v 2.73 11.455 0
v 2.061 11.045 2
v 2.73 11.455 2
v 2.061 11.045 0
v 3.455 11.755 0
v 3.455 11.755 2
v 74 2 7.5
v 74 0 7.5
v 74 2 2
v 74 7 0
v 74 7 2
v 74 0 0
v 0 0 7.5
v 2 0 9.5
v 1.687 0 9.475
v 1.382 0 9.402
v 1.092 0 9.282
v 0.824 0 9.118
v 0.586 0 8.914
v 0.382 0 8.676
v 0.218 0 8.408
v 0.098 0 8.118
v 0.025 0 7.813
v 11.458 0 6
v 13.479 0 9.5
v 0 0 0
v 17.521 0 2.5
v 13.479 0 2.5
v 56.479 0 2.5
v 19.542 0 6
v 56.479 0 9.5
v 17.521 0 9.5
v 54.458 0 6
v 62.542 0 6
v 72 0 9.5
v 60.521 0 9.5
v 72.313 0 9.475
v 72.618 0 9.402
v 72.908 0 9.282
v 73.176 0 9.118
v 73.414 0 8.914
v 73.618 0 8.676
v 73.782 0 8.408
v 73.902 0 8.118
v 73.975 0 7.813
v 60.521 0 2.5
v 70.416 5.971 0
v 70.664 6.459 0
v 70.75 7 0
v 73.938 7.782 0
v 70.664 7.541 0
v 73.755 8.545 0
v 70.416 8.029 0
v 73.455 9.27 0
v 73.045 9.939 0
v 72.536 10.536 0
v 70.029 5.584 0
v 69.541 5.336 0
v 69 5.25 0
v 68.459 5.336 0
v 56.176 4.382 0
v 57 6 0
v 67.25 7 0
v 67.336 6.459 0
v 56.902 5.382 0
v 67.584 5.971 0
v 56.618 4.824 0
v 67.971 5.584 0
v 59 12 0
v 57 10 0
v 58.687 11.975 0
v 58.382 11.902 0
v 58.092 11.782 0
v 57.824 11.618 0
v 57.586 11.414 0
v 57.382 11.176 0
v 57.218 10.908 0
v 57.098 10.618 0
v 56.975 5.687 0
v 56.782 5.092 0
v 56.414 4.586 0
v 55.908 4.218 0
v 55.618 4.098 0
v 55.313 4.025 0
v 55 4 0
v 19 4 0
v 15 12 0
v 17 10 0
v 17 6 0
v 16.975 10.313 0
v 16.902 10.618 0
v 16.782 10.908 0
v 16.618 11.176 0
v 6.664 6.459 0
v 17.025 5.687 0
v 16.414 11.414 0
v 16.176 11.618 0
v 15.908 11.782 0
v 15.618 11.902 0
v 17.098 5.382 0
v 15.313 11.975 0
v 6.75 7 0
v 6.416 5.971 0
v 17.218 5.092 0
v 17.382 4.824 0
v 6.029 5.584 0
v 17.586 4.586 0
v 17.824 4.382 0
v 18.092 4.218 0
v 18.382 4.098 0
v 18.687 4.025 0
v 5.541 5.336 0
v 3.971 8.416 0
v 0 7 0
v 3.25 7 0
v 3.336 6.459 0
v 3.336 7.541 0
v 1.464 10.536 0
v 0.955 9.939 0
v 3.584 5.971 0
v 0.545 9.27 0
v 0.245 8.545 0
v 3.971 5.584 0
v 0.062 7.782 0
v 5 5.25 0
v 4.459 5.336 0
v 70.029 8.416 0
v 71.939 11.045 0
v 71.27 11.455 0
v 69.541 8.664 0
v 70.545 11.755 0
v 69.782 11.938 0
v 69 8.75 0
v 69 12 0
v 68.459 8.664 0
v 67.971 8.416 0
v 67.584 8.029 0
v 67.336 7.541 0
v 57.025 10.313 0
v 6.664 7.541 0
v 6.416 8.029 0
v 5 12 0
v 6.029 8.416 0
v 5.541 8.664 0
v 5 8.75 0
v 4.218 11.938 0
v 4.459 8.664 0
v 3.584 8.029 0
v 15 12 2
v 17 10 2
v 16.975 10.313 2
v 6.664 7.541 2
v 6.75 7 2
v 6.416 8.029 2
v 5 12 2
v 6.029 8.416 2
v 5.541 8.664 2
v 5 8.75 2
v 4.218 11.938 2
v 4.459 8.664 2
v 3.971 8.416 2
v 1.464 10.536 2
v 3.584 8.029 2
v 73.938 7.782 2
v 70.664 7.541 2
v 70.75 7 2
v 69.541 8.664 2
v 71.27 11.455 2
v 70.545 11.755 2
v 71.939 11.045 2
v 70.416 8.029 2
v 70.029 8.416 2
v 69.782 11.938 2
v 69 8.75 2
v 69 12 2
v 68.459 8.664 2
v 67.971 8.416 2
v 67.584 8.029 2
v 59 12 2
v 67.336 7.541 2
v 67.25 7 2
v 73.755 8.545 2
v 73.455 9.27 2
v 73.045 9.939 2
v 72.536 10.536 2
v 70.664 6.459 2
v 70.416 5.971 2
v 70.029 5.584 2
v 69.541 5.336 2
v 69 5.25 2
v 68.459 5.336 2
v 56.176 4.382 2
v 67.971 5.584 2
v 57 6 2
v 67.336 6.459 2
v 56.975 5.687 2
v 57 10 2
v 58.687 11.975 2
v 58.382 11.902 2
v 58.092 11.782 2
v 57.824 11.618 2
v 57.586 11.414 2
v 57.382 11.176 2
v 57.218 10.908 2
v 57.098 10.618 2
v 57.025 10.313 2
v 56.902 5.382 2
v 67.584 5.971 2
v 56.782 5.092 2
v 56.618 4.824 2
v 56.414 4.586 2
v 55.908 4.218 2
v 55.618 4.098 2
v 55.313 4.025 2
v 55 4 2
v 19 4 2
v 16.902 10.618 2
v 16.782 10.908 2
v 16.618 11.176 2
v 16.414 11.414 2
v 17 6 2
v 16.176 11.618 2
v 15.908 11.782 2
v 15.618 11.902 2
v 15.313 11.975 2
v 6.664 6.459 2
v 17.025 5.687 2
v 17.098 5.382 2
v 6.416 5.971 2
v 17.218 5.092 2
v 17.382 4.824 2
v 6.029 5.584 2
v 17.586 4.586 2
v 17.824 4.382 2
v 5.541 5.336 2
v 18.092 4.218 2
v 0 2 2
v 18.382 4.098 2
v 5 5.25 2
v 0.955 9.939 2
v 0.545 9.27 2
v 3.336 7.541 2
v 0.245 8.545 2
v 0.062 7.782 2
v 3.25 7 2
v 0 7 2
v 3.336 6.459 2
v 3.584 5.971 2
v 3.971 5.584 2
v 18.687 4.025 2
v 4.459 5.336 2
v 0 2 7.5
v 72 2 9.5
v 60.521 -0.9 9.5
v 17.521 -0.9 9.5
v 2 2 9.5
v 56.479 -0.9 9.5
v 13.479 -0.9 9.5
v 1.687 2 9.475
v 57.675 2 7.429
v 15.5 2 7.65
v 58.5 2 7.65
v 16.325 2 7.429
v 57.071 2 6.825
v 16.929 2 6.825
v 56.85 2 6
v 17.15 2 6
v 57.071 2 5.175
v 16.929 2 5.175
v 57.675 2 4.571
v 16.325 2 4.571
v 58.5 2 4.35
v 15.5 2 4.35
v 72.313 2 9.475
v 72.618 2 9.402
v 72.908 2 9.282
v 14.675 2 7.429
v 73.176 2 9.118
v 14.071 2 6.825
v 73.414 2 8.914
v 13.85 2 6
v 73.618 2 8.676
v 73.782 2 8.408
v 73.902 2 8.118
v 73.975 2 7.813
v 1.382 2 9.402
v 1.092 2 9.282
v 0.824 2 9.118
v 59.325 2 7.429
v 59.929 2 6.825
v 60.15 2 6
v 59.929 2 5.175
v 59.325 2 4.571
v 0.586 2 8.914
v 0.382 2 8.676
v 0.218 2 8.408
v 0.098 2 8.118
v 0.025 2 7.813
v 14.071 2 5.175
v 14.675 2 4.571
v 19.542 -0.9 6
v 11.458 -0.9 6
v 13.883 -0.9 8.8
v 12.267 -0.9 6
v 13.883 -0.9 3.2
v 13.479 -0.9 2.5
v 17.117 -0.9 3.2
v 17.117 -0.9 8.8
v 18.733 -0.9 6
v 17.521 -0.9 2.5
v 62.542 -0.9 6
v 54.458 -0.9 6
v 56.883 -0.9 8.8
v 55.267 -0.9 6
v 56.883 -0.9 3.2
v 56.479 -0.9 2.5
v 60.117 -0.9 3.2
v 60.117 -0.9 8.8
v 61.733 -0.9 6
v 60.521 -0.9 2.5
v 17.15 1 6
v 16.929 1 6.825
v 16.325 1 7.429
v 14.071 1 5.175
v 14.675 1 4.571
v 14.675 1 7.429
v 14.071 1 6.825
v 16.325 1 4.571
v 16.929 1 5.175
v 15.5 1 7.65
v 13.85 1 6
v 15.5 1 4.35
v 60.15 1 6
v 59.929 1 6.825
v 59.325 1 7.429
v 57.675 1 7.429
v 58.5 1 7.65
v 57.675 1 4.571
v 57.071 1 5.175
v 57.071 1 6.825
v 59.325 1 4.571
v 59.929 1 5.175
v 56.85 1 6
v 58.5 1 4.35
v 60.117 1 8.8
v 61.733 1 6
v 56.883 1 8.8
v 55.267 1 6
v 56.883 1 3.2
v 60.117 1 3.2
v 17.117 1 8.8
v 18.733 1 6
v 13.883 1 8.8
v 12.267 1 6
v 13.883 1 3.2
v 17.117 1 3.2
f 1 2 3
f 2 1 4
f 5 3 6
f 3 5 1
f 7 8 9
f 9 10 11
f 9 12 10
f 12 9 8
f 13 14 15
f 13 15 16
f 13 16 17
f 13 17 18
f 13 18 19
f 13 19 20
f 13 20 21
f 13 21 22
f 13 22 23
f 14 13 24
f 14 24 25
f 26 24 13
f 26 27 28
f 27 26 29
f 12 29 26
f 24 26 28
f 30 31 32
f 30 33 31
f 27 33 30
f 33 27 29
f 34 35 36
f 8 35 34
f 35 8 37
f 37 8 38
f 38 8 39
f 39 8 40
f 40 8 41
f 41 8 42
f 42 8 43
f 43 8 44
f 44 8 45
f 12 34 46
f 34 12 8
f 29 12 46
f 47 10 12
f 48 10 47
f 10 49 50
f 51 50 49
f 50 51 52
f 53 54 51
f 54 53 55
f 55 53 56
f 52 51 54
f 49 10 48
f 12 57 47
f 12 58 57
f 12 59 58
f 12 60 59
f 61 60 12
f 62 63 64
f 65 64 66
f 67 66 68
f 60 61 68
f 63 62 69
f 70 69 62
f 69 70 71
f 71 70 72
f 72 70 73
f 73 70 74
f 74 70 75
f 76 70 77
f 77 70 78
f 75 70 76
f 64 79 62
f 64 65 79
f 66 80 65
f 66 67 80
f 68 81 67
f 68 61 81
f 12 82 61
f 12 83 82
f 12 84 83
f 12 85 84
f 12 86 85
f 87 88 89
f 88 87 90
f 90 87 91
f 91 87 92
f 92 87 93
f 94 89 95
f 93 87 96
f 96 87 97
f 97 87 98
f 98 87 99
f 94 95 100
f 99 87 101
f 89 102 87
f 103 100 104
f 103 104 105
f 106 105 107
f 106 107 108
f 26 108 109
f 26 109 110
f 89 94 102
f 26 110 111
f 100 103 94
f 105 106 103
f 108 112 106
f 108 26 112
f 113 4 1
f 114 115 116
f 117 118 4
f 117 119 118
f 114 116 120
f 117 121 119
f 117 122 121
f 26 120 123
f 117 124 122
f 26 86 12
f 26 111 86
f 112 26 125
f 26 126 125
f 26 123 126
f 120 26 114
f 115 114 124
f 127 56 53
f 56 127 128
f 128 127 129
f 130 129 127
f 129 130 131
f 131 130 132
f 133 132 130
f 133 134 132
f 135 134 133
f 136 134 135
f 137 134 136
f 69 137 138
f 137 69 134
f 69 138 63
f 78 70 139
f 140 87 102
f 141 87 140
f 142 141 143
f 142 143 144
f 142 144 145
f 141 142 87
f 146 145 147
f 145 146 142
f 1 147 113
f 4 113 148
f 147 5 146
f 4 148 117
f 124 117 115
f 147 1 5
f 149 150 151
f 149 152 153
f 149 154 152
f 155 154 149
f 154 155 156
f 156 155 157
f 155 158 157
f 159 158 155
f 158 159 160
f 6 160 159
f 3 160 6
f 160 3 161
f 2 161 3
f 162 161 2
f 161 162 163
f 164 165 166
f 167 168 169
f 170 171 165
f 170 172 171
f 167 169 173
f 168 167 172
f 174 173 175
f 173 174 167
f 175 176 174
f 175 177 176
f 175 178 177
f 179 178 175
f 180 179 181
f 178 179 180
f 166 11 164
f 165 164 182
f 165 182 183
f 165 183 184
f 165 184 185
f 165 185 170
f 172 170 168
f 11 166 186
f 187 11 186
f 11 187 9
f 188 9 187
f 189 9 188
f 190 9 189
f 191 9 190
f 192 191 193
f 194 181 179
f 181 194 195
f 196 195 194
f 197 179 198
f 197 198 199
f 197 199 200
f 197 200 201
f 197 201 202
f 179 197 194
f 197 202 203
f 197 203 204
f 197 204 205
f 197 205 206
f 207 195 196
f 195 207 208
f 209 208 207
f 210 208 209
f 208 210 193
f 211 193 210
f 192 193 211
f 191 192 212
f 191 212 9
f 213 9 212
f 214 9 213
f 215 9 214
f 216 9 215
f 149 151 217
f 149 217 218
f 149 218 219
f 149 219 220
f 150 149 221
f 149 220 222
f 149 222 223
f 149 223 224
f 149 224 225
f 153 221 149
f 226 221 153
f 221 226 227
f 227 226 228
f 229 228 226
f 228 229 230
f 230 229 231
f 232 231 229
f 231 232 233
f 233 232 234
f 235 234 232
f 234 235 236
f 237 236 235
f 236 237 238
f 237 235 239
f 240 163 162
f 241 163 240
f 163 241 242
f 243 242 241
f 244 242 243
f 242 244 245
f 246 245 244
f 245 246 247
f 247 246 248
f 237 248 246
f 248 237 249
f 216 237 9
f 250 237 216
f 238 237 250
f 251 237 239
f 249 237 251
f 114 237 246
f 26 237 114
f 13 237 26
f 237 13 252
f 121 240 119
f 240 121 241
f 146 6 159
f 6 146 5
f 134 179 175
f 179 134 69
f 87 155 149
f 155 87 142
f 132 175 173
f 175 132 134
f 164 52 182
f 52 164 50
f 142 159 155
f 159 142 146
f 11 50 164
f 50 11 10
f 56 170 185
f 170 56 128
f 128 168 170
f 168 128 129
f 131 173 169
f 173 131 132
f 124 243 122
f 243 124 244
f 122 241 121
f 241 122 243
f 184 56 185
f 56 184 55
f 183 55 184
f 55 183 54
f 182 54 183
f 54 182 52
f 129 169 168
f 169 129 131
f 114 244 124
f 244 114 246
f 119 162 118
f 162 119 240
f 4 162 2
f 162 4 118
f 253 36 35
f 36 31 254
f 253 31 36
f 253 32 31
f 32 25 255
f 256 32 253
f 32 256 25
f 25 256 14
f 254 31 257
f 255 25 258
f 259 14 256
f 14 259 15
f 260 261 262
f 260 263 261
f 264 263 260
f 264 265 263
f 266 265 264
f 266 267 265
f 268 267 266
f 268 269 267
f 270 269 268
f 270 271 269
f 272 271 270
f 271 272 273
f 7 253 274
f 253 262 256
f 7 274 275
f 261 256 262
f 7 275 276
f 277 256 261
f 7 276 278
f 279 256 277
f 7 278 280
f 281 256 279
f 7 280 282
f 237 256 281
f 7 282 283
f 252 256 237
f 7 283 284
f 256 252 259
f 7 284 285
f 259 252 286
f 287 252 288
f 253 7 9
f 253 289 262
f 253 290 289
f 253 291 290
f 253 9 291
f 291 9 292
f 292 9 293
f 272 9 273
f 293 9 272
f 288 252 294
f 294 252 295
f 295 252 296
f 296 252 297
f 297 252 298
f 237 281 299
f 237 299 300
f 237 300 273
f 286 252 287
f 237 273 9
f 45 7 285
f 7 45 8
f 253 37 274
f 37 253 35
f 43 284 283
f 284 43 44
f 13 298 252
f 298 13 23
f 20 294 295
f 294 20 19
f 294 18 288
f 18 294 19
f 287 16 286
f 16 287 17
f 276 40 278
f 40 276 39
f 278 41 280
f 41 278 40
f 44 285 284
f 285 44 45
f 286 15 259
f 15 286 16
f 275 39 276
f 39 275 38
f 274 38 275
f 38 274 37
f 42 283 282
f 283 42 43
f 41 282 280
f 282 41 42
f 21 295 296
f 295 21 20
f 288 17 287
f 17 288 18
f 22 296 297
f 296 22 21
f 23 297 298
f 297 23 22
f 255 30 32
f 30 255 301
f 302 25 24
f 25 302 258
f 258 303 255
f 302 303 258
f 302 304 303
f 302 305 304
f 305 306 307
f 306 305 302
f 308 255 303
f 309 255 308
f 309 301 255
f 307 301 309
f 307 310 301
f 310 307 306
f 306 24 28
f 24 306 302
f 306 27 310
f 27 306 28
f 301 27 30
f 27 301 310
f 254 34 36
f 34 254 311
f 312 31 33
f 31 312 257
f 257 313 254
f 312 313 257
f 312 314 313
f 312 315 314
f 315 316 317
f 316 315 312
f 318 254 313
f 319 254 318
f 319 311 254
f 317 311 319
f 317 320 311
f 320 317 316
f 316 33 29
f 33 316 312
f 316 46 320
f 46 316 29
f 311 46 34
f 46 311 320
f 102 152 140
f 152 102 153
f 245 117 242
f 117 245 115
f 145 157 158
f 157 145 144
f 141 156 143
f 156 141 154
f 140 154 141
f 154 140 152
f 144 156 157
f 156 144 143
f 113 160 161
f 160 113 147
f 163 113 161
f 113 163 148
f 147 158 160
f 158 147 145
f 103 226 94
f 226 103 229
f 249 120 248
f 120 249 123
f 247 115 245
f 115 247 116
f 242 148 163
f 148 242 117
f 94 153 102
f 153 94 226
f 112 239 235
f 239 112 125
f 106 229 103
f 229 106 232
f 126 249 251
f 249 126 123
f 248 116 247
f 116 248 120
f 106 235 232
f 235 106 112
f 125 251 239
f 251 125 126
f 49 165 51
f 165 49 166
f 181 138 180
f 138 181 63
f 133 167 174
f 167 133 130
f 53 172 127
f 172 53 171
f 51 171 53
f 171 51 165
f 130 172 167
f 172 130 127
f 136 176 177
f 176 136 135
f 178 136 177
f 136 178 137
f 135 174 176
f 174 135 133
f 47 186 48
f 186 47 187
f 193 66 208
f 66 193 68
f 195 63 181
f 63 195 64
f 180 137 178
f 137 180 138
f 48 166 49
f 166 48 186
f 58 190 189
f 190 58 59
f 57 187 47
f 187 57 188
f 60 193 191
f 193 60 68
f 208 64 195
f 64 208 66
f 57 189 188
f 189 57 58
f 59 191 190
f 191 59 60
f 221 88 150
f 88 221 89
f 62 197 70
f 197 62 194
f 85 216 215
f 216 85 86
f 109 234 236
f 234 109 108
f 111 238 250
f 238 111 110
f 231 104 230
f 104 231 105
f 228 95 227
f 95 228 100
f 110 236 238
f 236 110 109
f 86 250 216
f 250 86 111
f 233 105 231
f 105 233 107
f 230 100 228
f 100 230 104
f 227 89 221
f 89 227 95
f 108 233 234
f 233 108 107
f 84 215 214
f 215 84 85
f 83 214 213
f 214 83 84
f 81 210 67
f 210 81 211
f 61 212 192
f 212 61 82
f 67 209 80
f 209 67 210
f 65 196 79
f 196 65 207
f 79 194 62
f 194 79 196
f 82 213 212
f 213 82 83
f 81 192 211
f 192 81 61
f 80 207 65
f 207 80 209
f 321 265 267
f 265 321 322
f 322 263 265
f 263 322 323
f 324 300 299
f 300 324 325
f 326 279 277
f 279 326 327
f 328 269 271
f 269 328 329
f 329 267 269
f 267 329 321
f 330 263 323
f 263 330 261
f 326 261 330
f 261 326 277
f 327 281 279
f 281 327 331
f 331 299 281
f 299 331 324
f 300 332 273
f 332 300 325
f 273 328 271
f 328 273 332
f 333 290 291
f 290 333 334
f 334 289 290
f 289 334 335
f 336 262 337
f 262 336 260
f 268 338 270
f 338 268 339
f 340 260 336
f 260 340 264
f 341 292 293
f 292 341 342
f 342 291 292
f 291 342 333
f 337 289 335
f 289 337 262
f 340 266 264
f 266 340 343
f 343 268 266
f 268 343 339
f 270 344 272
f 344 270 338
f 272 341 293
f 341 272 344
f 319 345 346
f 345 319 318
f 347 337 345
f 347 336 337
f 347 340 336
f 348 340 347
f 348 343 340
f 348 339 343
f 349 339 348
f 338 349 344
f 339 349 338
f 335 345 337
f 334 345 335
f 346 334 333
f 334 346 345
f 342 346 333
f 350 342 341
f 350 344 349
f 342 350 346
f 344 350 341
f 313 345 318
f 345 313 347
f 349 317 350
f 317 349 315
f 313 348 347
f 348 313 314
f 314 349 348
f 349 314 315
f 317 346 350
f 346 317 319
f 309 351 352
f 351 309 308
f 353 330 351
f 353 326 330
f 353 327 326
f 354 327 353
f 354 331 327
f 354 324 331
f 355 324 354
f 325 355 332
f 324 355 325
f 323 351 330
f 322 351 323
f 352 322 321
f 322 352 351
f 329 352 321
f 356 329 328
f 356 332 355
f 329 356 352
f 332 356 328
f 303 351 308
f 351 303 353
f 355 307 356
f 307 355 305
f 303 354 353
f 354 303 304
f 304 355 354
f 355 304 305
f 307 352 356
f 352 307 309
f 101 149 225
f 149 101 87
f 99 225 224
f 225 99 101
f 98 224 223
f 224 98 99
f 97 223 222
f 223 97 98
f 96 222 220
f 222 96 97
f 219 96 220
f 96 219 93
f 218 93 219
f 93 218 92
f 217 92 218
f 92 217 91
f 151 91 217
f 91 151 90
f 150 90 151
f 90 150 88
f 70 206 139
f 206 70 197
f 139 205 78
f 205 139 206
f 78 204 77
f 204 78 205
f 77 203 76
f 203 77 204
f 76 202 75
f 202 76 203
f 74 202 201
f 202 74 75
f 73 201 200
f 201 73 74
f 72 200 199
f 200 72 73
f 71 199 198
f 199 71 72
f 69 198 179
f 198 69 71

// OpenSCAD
// file: lib/parameters.scad
// Parameters shared between modules
Base_th = 2;
Beam_width = 15;
Wiggle = 0.25;
Fat_beam_width = Beam_width + Wiggle;
Beam_length = 400;
Wall_th = 2.5;
Min_beam_width = 12.5;
Max_beam_width = 17.5;
Zip_th = 2;
Zip_h = Zip_th + Max_beam_width - Min_beam_width;
Zip_w = 5.0;
Nema17_cube_width          = 42.43;
Nema17_screw_hole_width    = 43.74; // Opposite corner screws
Nema17_ring_diameter       = 22;
Nema17_cube_height         = 39.36;
Nema17_shaft_height        = 63.65;
Nema17_ring_height         = 2;
Nema17_shaft_radius        = 5/2;

Nema23_cube_width          = 56.4;
Nema23_cube_height         = 54.5;
Nema23_shaft_height        = 100;
Nema23_screw_hole_width    = 66.31; // Opposite corner screws
b608_outer_dia = 22.2; // Should probably be 22.1 for a snug fit with finer printers
b608_width = 7.05;
b608_bore_r = 4;
b608_vgroove_big_r = b608_outer_dia/2 + 2.5;
b608_vgroove_small_r = b608_outer_dia/2 + 0.5;
b608_ugroove_big_r = b608_vgroove_big_r;
b608_ugroove_small_r = b608_vgroove_small_r;
Gap_between_sandwich_and_plate = 1.5 + Base_th; // 1.5 mm for wiggle
Motor_bracket_flerp_r = 6;
Motor_bracket_flerp = 14;
Motor_bracket_cw = Nema17_cube_width + 6;
Motor_bracket_att_ang = 50;
Mounting_screw_d = 3.5;
Mounting_screw_head_d = 14;
Spool_outer_wall_th = 4;

// Corner clamp parameters
Cc_l1 = (Fat_beam_width+2*Wall_th)*2*sqrt(3);
Cc_rad_b = 4;
Cc_action_point_from_mid = Cc_l1/sqrt(3)-2*Cc_rad_b-7;
Cc_plastic_length = sqrt(Cc_action_point_from_mid*Cc_action_point_from_mid
                       - (Cc_action_point_from_mid/2)*(Cc_action_point_from_mid/2));
Eyelet_extra_dist = 0.75;
Eyelet_diameter = 4.30;
Eyelet_flange_diameter = 5.93;

// The distance between the two action points on the mover
Sidelength = Beam_length + 2*Cc_plastic_length;

/////// Gear parameters ////////////
Circular_pitch = 262;
Motor_teeth = 10;
Gear_height = 21.4-3;
Motor_pitch                      = (Motor_teeth*Circular_pitch/360);
Motor_pitch_diametrial           = Motor_teeth/(2*Motor_pitch);
Motor_outer_radius               = Motor_pitch + 1/Motor_pitch_diametrial;
Spool_teeth = 100;
Spool_r = 75;
Spool_height = 8;
Spool_pitch                      = (Spool_teeth*Circular_pitch/360);
Spool_pitch_diametrial           = Spool_teeth/(2*Spool_pitch);
Spool_outer_radius               = Spool_pitch + 1/Spool_pitch_diametrial;
Sep_disc_radius = (161.83+1)/2; // Made to match 255 teeth gt2 pulley + 1
Motor_bracket_depth = Gear_height+1+7+Nema17_ring_height+1+Gap_between_sandwich_and_plate;
Spool_core_flerp0 = 16+3;

/////// Lineroller parameters ////////////
b623_width  = 4;
b623_bore_r = 3/2;
b623_big_ugroove_big_r = (12+3)/2;
b623_big_ugroove_small_r = (10+3)/2;
b623_outer_dia = 10;
b623_ugroove_room_to_grow_r = 1.1;
b608_ugroove_room_to_grow_r = 1.1;
b623_flange_dia = 11.5;
b623_flange_room_to_grow_r = 0.5;

Depth_of_roller_base = 18;
Roller_flerp = 6;
Roller_l = 42;
Roller_fl = (Roller_l - Depth_of_roller_base)/2;

Line_roller_wall_th = 5;

Line_roller_ABCD_winch_h =  Gap_between_sandwich_and_plate
                           + Sep_disc_radius
                           - Spool_r
                           + Depth_of_roller_base/2
                           + b608_vgroove_small_r;

Ptfe_r = 2.1;
Roller_base_r = 8;
Screw_h = 2;
Screw_head_h = 2;
M3_screw_head_d = 5.8;
Spool_center_bearing_wall_th = 5;
Corner_clamp_bearings_center_to_center = max(45, (b623_big_ugroove_big_r + b623_ugroove_room_to_grow_r)*2 + 5);

//// Lineroller anchor parameters /////

Front_bearing_x = -5 - 5;
Move_tower = -12.2;
Lower_bearing_z = 13;
Higher_bearing_z = Lower_bearing_z + Corner_clamp_bearings_center_to_center;

//// Cable Clamp parameters /////
Bit_width = 12;
Cable_r=3.5;

// Belt drive parameters
GT2_belt_width = 6.5;
GT2_gear_height = GT2_belt_width + 2;
GT2_motor_gear_height = 16;
GT2_motor_gear_outer_dia = 16;
GT2_spool_gear_outer_dia = 161.82; // Echoed from GT2_spool_gear.scad
GT2_spool_gear_teeth = 255;
GT2_motor_gear_teeth = 20;
Torx_depth = GT2_gear_height/2;
Belt_roller_h = 56;
Belt_thickness = 1.4;

Belt_roller_space_between_walls = 2*b623_width + 0.8;
Belt_roller_wall_th = (Depth_of_roller_base - Belt_roller_space_between_walls)/2+2;
Belt_roller_top_adj_screw_x = Depth_of_roller_base/2-3.7;
Belt_roller_top_adj_screw_y = Belt_roller_space_between_walls/2+2;
Belt_roller_containing_cube_ywidth = Belt_roller_space_between_walls+8.5;
Belt_roller_containing_cube_xwidth = 14;
Belt_roller_insert_h = 18;

Sandwich_ABCD_width = 2*(1+Spool_height) + GT2_gear_height;
Sandwich_I_width = 5*(1+Spool_height) + GT2_gear_height;
Spool_core_halve_width = 14.3;
Spool_core_impression_in_spool_cover = 0;
Spool_cover_bottom_th = 1.5;
Spool_cover_shoulder = 2;
Spool_core_cover_adj = Spool_cover_shoulder+Spool_cover_bottom_th-Spool_core_impression_in_spool_cover;
Spool_core_tot_length = 136.458;
Spool_cover_outer_r = Sep_disc_radius + 2;
Gap_between_sep_disc_and_spool_cover = 0.55;

Smooth_rod_length_ABCD = Sandwich_ABCD_width + 2*(Spool_core_halve_width-Spool_core_impression_in_spool_cover + Spool_cover_bottom_th + Spool_cover_shoulder);
Smooth_rod_length_I = Sandwich_I_width + 2*(Spool_core_halve_width-Spool_core_impression_in_spool_cover + Spool_cover_bottom_th + Spool_cover_shoulder);
echo("Smooth_rod_length_ABCD", Smooth_rod_length_ABCD);
echo("Smooth_rod_length_I", Smooth_rod_length_I);

Spool_cover_tot_height = Spool_cover_bottom_th+Spool_cover_shoulder+1+Spool_height;
Spool_cover_I_left_tot_height = Spool_cover_shoulder+Spool_cover_bottom_th+2*(Spool_height+1);
Spool_cover_I_right_tot_height = Spool_cover_shoulder+Spool_cover_bottom_th+3*(Spool_height+1);

spd = Spool_height+GT2_gear_height;
// Horizontal_deflector_cube_y_size must be exact this number
// because we want to deflect AB-lines
// 60 degrees on the ceiling unit, and we want to put two
// deflectors in a row and get a distance between bearings
// that maintain the distance d when deflecting 60 degrees
Horizontal_deflector_cube_y_size = (2/sqrt(3))*spd;

Belt_roller_bearing_xpos = Sep_disc_radius + b623_outer_dia/2+Belt_thickness;



Pen_holder_w = 55;
Pen_holder_rail_w = 36;
Pen_holder_bottom_th = 7;

u_width = 7;
Stick_extra = 5;
Stick_length = b623_big_ugroove_big_r*2 + 7*2 + 1*2 + Stick_extra;
Stick_d = 12.5;

Ram_1000_3dpotter_tube_inner_d = 70;
Ram_1000_3dpotter_tube_outer_d = Ram_1000_3dpotter_tube_inner_d + 2*3.3;
Ram_1000_3dpotter_top_square_width = 31.7;

// 6 mm nozzle
// Wasp_xl30_funnel_d1 = 7.2;
// Wasp_xl30_funnel_d2 = 26.3;
// Wasp_xl30_funnel_h = 18.59;

// 4 mm nozzle
Wasp_xl30_funnel_d1 = 5.2;
Wasp_xl30_funnel_d2 = 26.0;
Wasp_xl30_funnel_h = 17.7;



// Colors
Color0 = "sandybrown";
Color0_alpha = 0.55;
Color1 = [0.81,0.73,0.05];
Color1_alpha = 1.0;
Color2 = [0.99,0.99,0.99];
Color2_alpha = 0.8;
Spool_cover_alpha = 0.5;
Color_carbon = [0.2,0.2,0.2];
//Color_line = [0.9,0.35,0.35];
Color_line=[1.0,0.2,0.2];
Color_motor=[0.5,0.4,0.9];
// main file
use <lib/util.scad>

difference(){
  union(){
    ydir_rounded_cube2([50+2*12, 12, 2], r=5, $fn=10*4);
    translate([0,2,0])
      rotate([90,0,0])
        ydir_rounded_cube2([50+2*12, 9.5, 2], r=2, $fn=10*4);
    translate([3.5+12,1.1,9.5-3.5])
      rotate([90,0,0])
        nut_wall(h=2);
    translate([50-3.5+12,1.1,9.5-3.5])
      rotate([90,0,0])
        nut_wall(h=2);
  }

  translate([3.5+12,0,9.5-3.5])
    rotate([90,0,0])
      M3_screw(h=10, center=true);
  translate([50-3.5+12,0,9.5-3.5])
    rotate([90,0,0])
      M3_screw(h=10, center=true);
  translate([50-3.5+12,1,9.5-3.5])
    rotate([90,0,0])
      M3_nut(h=2);
  translate([3.5+12,1,9.5-3.5])
    rotate([90,0,0])
      M3_nut(h=2);
  translate([5, 12-5, 0.3])
    Mounting_screw();
  translate([50+2*12-5, 12-5, 0.3])
    Mounting_screw();
  translate([17, 4, -1])
    ymdir_rounded_cube2([50+2*12-2*17, 8.1, 5], r=2, $fn=10*4);
  translate([17, 12, -1])
    rotate([0,0,180])
      inner_round_corner(r=2, h=5, $fn=4*10);
  translate([50+2*12-17, 12, -1])
    rotate([0,0,-90])
      inner_round_corner(r=2, h=5, $fn=4*10);
}
